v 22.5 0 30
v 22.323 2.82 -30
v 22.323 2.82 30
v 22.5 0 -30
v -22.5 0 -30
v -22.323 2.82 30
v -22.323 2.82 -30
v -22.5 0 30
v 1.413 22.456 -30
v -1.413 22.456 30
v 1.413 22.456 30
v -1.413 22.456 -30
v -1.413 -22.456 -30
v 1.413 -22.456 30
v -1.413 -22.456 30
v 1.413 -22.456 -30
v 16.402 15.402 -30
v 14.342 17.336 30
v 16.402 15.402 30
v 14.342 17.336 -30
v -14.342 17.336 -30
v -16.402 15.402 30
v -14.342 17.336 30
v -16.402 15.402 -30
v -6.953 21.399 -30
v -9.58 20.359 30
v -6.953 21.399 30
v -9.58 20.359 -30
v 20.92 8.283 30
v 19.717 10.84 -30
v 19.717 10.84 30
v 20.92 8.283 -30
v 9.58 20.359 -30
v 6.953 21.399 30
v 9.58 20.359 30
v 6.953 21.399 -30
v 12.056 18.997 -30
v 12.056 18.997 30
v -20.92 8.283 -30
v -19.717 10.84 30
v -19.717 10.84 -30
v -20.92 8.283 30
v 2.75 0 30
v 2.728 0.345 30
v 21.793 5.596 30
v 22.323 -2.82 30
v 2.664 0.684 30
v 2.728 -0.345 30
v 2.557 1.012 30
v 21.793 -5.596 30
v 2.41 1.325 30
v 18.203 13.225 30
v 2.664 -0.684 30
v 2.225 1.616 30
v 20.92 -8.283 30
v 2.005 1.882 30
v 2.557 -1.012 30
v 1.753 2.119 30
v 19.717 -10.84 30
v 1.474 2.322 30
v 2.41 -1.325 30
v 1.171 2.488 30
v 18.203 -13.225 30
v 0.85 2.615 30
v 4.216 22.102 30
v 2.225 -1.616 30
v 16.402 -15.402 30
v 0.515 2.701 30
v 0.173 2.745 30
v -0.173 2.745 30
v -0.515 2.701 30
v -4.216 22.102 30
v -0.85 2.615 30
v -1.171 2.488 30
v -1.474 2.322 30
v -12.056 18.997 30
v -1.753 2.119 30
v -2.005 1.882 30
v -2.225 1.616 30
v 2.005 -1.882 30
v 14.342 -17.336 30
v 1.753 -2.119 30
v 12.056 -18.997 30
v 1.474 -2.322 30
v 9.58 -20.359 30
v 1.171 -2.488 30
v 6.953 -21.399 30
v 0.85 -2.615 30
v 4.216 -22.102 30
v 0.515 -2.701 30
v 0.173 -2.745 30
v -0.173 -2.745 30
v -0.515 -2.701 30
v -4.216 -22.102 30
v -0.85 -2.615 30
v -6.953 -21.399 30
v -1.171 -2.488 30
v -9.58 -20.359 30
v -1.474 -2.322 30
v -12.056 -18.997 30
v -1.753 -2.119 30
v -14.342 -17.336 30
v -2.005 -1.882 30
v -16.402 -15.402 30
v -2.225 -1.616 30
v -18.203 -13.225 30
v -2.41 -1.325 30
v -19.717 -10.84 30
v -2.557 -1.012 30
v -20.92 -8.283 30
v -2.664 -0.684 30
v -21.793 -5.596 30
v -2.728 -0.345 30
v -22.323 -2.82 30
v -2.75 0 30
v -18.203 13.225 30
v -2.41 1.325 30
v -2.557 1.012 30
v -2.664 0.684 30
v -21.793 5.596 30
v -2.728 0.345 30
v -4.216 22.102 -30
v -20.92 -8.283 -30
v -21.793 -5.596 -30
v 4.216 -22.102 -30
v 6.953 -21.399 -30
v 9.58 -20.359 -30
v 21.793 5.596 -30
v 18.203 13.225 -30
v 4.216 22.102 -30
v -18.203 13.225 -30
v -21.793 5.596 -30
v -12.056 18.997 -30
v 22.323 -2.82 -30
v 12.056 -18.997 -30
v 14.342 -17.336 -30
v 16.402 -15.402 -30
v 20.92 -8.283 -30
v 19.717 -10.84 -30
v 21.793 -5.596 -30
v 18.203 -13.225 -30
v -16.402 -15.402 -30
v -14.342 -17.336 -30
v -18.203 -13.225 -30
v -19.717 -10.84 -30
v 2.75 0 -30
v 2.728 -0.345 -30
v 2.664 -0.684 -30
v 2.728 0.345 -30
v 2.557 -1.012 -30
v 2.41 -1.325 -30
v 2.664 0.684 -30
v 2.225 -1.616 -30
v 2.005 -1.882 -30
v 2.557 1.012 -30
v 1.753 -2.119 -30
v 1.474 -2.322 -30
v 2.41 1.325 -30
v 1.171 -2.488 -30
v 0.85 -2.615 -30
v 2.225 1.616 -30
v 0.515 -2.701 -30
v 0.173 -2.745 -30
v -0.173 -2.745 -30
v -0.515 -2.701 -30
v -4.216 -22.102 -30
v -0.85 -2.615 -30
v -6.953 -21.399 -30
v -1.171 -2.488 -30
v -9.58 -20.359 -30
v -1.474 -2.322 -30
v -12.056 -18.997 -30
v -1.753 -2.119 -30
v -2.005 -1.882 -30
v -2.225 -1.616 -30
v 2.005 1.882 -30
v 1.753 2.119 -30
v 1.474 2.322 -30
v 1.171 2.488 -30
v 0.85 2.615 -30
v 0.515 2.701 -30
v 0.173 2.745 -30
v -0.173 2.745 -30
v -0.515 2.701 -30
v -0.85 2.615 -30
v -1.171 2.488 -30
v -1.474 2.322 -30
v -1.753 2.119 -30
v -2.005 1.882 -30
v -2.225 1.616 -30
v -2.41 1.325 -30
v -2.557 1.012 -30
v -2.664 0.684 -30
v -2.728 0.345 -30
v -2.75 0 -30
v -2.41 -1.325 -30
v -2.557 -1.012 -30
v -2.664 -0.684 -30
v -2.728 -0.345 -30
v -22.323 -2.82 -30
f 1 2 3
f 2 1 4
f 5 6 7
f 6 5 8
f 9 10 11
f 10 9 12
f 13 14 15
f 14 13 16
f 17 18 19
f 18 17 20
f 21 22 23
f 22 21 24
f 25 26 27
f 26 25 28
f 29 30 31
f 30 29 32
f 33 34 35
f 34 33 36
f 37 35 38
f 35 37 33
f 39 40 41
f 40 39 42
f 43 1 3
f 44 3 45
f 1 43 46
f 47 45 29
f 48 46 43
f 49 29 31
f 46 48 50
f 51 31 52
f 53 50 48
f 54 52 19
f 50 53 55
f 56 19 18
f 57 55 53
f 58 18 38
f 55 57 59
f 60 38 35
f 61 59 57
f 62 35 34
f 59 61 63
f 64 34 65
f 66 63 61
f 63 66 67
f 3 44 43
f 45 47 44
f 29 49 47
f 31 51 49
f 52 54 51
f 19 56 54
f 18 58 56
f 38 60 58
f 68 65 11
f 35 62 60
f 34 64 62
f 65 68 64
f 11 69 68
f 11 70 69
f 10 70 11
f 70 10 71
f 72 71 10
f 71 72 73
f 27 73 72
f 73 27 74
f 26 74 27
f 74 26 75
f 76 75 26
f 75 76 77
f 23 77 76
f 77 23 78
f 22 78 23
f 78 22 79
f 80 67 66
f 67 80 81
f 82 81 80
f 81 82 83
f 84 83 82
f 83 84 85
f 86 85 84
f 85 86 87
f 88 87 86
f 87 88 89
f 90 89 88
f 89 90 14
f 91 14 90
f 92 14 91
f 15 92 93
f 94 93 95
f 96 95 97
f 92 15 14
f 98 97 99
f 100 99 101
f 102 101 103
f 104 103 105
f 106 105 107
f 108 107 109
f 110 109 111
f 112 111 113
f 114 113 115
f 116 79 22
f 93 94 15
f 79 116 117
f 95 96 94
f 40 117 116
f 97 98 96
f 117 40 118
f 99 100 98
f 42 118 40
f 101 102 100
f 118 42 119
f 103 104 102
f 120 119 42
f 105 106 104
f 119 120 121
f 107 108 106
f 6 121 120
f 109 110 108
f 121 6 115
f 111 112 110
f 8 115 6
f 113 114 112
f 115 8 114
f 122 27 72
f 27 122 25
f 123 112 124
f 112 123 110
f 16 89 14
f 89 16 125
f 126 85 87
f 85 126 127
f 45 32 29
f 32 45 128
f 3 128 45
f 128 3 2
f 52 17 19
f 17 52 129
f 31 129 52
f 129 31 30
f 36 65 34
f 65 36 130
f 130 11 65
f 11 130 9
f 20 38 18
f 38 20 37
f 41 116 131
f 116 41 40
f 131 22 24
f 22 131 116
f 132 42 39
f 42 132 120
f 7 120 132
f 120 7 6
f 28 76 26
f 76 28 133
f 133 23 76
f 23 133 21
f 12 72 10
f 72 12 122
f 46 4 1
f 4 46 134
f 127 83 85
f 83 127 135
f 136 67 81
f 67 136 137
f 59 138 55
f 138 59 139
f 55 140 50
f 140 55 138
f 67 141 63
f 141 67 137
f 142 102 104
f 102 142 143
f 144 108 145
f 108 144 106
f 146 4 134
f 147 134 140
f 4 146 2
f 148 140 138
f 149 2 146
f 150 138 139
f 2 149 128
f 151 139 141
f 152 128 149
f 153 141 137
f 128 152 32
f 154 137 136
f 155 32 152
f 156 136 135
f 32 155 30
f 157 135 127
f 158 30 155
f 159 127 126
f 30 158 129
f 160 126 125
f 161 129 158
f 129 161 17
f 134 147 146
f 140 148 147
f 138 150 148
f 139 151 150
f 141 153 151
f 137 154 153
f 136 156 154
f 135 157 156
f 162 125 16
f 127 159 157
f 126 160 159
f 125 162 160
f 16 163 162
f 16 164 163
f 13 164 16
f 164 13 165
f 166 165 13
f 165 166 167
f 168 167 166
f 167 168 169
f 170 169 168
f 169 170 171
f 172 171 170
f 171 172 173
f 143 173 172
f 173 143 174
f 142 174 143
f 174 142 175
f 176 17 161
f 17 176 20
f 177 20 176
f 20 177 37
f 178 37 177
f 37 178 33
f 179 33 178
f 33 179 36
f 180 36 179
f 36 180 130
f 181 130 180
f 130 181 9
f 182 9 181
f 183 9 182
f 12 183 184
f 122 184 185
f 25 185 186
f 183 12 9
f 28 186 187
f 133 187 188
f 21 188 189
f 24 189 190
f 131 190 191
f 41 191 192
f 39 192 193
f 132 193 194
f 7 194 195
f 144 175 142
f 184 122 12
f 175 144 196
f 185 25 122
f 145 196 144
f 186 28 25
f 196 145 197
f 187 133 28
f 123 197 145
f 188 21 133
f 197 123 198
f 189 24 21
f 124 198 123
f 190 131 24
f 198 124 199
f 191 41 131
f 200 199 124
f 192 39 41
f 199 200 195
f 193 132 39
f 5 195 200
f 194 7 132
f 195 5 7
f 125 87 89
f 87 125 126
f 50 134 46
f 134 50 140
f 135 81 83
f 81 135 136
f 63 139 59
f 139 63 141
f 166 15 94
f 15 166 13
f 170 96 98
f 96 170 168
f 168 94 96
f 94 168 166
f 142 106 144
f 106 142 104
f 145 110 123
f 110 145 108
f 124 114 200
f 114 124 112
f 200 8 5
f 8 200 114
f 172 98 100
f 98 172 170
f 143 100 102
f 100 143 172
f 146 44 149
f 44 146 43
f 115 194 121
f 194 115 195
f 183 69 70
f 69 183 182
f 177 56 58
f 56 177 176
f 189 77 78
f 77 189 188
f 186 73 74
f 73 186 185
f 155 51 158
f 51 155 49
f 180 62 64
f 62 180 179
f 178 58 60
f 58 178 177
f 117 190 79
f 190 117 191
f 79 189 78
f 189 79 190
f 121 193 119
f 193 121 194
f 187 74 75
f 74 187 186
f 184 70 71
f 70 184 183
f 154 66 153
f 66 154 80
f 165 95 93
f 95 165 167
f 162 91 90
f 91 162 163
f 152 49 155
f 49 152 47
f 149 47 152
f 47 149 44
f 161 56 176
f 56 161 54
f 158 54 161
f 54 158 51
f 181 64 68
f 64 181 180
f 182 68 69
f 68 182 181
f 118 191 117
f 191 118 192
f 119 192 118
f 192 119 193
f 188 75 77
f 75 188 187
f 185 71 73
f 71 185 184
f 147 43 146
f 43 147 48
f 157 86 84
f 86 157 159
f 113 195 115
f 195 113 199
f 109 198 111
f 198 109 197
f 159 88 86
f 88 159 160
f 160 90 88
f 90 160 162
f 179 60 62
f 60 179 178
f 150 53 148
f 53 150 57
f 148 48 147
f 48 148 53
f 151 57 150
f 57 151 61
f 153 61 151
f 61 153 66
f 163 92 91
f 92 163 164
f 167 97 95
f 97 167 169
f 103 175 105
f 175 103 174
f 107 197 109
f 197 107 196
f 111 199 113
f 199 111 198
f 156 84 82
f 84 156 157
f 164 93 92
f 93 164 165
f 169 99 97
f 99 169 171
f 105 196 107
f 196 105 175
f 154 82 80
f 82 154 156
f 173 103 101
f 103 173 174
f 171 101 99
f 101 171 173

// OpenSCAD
$fn = 50;


difference() {
	union() {
		translate(v = [0, 0, -30.0000000000]) {
			cylinder(h = 60, r = 22.5000000000);
		}
	}
	union() {
		translate(v = [0, 0, -100.0000000000]) {
			cylinder(h = 200, r = 2.7500000000);
		}
	}
}
